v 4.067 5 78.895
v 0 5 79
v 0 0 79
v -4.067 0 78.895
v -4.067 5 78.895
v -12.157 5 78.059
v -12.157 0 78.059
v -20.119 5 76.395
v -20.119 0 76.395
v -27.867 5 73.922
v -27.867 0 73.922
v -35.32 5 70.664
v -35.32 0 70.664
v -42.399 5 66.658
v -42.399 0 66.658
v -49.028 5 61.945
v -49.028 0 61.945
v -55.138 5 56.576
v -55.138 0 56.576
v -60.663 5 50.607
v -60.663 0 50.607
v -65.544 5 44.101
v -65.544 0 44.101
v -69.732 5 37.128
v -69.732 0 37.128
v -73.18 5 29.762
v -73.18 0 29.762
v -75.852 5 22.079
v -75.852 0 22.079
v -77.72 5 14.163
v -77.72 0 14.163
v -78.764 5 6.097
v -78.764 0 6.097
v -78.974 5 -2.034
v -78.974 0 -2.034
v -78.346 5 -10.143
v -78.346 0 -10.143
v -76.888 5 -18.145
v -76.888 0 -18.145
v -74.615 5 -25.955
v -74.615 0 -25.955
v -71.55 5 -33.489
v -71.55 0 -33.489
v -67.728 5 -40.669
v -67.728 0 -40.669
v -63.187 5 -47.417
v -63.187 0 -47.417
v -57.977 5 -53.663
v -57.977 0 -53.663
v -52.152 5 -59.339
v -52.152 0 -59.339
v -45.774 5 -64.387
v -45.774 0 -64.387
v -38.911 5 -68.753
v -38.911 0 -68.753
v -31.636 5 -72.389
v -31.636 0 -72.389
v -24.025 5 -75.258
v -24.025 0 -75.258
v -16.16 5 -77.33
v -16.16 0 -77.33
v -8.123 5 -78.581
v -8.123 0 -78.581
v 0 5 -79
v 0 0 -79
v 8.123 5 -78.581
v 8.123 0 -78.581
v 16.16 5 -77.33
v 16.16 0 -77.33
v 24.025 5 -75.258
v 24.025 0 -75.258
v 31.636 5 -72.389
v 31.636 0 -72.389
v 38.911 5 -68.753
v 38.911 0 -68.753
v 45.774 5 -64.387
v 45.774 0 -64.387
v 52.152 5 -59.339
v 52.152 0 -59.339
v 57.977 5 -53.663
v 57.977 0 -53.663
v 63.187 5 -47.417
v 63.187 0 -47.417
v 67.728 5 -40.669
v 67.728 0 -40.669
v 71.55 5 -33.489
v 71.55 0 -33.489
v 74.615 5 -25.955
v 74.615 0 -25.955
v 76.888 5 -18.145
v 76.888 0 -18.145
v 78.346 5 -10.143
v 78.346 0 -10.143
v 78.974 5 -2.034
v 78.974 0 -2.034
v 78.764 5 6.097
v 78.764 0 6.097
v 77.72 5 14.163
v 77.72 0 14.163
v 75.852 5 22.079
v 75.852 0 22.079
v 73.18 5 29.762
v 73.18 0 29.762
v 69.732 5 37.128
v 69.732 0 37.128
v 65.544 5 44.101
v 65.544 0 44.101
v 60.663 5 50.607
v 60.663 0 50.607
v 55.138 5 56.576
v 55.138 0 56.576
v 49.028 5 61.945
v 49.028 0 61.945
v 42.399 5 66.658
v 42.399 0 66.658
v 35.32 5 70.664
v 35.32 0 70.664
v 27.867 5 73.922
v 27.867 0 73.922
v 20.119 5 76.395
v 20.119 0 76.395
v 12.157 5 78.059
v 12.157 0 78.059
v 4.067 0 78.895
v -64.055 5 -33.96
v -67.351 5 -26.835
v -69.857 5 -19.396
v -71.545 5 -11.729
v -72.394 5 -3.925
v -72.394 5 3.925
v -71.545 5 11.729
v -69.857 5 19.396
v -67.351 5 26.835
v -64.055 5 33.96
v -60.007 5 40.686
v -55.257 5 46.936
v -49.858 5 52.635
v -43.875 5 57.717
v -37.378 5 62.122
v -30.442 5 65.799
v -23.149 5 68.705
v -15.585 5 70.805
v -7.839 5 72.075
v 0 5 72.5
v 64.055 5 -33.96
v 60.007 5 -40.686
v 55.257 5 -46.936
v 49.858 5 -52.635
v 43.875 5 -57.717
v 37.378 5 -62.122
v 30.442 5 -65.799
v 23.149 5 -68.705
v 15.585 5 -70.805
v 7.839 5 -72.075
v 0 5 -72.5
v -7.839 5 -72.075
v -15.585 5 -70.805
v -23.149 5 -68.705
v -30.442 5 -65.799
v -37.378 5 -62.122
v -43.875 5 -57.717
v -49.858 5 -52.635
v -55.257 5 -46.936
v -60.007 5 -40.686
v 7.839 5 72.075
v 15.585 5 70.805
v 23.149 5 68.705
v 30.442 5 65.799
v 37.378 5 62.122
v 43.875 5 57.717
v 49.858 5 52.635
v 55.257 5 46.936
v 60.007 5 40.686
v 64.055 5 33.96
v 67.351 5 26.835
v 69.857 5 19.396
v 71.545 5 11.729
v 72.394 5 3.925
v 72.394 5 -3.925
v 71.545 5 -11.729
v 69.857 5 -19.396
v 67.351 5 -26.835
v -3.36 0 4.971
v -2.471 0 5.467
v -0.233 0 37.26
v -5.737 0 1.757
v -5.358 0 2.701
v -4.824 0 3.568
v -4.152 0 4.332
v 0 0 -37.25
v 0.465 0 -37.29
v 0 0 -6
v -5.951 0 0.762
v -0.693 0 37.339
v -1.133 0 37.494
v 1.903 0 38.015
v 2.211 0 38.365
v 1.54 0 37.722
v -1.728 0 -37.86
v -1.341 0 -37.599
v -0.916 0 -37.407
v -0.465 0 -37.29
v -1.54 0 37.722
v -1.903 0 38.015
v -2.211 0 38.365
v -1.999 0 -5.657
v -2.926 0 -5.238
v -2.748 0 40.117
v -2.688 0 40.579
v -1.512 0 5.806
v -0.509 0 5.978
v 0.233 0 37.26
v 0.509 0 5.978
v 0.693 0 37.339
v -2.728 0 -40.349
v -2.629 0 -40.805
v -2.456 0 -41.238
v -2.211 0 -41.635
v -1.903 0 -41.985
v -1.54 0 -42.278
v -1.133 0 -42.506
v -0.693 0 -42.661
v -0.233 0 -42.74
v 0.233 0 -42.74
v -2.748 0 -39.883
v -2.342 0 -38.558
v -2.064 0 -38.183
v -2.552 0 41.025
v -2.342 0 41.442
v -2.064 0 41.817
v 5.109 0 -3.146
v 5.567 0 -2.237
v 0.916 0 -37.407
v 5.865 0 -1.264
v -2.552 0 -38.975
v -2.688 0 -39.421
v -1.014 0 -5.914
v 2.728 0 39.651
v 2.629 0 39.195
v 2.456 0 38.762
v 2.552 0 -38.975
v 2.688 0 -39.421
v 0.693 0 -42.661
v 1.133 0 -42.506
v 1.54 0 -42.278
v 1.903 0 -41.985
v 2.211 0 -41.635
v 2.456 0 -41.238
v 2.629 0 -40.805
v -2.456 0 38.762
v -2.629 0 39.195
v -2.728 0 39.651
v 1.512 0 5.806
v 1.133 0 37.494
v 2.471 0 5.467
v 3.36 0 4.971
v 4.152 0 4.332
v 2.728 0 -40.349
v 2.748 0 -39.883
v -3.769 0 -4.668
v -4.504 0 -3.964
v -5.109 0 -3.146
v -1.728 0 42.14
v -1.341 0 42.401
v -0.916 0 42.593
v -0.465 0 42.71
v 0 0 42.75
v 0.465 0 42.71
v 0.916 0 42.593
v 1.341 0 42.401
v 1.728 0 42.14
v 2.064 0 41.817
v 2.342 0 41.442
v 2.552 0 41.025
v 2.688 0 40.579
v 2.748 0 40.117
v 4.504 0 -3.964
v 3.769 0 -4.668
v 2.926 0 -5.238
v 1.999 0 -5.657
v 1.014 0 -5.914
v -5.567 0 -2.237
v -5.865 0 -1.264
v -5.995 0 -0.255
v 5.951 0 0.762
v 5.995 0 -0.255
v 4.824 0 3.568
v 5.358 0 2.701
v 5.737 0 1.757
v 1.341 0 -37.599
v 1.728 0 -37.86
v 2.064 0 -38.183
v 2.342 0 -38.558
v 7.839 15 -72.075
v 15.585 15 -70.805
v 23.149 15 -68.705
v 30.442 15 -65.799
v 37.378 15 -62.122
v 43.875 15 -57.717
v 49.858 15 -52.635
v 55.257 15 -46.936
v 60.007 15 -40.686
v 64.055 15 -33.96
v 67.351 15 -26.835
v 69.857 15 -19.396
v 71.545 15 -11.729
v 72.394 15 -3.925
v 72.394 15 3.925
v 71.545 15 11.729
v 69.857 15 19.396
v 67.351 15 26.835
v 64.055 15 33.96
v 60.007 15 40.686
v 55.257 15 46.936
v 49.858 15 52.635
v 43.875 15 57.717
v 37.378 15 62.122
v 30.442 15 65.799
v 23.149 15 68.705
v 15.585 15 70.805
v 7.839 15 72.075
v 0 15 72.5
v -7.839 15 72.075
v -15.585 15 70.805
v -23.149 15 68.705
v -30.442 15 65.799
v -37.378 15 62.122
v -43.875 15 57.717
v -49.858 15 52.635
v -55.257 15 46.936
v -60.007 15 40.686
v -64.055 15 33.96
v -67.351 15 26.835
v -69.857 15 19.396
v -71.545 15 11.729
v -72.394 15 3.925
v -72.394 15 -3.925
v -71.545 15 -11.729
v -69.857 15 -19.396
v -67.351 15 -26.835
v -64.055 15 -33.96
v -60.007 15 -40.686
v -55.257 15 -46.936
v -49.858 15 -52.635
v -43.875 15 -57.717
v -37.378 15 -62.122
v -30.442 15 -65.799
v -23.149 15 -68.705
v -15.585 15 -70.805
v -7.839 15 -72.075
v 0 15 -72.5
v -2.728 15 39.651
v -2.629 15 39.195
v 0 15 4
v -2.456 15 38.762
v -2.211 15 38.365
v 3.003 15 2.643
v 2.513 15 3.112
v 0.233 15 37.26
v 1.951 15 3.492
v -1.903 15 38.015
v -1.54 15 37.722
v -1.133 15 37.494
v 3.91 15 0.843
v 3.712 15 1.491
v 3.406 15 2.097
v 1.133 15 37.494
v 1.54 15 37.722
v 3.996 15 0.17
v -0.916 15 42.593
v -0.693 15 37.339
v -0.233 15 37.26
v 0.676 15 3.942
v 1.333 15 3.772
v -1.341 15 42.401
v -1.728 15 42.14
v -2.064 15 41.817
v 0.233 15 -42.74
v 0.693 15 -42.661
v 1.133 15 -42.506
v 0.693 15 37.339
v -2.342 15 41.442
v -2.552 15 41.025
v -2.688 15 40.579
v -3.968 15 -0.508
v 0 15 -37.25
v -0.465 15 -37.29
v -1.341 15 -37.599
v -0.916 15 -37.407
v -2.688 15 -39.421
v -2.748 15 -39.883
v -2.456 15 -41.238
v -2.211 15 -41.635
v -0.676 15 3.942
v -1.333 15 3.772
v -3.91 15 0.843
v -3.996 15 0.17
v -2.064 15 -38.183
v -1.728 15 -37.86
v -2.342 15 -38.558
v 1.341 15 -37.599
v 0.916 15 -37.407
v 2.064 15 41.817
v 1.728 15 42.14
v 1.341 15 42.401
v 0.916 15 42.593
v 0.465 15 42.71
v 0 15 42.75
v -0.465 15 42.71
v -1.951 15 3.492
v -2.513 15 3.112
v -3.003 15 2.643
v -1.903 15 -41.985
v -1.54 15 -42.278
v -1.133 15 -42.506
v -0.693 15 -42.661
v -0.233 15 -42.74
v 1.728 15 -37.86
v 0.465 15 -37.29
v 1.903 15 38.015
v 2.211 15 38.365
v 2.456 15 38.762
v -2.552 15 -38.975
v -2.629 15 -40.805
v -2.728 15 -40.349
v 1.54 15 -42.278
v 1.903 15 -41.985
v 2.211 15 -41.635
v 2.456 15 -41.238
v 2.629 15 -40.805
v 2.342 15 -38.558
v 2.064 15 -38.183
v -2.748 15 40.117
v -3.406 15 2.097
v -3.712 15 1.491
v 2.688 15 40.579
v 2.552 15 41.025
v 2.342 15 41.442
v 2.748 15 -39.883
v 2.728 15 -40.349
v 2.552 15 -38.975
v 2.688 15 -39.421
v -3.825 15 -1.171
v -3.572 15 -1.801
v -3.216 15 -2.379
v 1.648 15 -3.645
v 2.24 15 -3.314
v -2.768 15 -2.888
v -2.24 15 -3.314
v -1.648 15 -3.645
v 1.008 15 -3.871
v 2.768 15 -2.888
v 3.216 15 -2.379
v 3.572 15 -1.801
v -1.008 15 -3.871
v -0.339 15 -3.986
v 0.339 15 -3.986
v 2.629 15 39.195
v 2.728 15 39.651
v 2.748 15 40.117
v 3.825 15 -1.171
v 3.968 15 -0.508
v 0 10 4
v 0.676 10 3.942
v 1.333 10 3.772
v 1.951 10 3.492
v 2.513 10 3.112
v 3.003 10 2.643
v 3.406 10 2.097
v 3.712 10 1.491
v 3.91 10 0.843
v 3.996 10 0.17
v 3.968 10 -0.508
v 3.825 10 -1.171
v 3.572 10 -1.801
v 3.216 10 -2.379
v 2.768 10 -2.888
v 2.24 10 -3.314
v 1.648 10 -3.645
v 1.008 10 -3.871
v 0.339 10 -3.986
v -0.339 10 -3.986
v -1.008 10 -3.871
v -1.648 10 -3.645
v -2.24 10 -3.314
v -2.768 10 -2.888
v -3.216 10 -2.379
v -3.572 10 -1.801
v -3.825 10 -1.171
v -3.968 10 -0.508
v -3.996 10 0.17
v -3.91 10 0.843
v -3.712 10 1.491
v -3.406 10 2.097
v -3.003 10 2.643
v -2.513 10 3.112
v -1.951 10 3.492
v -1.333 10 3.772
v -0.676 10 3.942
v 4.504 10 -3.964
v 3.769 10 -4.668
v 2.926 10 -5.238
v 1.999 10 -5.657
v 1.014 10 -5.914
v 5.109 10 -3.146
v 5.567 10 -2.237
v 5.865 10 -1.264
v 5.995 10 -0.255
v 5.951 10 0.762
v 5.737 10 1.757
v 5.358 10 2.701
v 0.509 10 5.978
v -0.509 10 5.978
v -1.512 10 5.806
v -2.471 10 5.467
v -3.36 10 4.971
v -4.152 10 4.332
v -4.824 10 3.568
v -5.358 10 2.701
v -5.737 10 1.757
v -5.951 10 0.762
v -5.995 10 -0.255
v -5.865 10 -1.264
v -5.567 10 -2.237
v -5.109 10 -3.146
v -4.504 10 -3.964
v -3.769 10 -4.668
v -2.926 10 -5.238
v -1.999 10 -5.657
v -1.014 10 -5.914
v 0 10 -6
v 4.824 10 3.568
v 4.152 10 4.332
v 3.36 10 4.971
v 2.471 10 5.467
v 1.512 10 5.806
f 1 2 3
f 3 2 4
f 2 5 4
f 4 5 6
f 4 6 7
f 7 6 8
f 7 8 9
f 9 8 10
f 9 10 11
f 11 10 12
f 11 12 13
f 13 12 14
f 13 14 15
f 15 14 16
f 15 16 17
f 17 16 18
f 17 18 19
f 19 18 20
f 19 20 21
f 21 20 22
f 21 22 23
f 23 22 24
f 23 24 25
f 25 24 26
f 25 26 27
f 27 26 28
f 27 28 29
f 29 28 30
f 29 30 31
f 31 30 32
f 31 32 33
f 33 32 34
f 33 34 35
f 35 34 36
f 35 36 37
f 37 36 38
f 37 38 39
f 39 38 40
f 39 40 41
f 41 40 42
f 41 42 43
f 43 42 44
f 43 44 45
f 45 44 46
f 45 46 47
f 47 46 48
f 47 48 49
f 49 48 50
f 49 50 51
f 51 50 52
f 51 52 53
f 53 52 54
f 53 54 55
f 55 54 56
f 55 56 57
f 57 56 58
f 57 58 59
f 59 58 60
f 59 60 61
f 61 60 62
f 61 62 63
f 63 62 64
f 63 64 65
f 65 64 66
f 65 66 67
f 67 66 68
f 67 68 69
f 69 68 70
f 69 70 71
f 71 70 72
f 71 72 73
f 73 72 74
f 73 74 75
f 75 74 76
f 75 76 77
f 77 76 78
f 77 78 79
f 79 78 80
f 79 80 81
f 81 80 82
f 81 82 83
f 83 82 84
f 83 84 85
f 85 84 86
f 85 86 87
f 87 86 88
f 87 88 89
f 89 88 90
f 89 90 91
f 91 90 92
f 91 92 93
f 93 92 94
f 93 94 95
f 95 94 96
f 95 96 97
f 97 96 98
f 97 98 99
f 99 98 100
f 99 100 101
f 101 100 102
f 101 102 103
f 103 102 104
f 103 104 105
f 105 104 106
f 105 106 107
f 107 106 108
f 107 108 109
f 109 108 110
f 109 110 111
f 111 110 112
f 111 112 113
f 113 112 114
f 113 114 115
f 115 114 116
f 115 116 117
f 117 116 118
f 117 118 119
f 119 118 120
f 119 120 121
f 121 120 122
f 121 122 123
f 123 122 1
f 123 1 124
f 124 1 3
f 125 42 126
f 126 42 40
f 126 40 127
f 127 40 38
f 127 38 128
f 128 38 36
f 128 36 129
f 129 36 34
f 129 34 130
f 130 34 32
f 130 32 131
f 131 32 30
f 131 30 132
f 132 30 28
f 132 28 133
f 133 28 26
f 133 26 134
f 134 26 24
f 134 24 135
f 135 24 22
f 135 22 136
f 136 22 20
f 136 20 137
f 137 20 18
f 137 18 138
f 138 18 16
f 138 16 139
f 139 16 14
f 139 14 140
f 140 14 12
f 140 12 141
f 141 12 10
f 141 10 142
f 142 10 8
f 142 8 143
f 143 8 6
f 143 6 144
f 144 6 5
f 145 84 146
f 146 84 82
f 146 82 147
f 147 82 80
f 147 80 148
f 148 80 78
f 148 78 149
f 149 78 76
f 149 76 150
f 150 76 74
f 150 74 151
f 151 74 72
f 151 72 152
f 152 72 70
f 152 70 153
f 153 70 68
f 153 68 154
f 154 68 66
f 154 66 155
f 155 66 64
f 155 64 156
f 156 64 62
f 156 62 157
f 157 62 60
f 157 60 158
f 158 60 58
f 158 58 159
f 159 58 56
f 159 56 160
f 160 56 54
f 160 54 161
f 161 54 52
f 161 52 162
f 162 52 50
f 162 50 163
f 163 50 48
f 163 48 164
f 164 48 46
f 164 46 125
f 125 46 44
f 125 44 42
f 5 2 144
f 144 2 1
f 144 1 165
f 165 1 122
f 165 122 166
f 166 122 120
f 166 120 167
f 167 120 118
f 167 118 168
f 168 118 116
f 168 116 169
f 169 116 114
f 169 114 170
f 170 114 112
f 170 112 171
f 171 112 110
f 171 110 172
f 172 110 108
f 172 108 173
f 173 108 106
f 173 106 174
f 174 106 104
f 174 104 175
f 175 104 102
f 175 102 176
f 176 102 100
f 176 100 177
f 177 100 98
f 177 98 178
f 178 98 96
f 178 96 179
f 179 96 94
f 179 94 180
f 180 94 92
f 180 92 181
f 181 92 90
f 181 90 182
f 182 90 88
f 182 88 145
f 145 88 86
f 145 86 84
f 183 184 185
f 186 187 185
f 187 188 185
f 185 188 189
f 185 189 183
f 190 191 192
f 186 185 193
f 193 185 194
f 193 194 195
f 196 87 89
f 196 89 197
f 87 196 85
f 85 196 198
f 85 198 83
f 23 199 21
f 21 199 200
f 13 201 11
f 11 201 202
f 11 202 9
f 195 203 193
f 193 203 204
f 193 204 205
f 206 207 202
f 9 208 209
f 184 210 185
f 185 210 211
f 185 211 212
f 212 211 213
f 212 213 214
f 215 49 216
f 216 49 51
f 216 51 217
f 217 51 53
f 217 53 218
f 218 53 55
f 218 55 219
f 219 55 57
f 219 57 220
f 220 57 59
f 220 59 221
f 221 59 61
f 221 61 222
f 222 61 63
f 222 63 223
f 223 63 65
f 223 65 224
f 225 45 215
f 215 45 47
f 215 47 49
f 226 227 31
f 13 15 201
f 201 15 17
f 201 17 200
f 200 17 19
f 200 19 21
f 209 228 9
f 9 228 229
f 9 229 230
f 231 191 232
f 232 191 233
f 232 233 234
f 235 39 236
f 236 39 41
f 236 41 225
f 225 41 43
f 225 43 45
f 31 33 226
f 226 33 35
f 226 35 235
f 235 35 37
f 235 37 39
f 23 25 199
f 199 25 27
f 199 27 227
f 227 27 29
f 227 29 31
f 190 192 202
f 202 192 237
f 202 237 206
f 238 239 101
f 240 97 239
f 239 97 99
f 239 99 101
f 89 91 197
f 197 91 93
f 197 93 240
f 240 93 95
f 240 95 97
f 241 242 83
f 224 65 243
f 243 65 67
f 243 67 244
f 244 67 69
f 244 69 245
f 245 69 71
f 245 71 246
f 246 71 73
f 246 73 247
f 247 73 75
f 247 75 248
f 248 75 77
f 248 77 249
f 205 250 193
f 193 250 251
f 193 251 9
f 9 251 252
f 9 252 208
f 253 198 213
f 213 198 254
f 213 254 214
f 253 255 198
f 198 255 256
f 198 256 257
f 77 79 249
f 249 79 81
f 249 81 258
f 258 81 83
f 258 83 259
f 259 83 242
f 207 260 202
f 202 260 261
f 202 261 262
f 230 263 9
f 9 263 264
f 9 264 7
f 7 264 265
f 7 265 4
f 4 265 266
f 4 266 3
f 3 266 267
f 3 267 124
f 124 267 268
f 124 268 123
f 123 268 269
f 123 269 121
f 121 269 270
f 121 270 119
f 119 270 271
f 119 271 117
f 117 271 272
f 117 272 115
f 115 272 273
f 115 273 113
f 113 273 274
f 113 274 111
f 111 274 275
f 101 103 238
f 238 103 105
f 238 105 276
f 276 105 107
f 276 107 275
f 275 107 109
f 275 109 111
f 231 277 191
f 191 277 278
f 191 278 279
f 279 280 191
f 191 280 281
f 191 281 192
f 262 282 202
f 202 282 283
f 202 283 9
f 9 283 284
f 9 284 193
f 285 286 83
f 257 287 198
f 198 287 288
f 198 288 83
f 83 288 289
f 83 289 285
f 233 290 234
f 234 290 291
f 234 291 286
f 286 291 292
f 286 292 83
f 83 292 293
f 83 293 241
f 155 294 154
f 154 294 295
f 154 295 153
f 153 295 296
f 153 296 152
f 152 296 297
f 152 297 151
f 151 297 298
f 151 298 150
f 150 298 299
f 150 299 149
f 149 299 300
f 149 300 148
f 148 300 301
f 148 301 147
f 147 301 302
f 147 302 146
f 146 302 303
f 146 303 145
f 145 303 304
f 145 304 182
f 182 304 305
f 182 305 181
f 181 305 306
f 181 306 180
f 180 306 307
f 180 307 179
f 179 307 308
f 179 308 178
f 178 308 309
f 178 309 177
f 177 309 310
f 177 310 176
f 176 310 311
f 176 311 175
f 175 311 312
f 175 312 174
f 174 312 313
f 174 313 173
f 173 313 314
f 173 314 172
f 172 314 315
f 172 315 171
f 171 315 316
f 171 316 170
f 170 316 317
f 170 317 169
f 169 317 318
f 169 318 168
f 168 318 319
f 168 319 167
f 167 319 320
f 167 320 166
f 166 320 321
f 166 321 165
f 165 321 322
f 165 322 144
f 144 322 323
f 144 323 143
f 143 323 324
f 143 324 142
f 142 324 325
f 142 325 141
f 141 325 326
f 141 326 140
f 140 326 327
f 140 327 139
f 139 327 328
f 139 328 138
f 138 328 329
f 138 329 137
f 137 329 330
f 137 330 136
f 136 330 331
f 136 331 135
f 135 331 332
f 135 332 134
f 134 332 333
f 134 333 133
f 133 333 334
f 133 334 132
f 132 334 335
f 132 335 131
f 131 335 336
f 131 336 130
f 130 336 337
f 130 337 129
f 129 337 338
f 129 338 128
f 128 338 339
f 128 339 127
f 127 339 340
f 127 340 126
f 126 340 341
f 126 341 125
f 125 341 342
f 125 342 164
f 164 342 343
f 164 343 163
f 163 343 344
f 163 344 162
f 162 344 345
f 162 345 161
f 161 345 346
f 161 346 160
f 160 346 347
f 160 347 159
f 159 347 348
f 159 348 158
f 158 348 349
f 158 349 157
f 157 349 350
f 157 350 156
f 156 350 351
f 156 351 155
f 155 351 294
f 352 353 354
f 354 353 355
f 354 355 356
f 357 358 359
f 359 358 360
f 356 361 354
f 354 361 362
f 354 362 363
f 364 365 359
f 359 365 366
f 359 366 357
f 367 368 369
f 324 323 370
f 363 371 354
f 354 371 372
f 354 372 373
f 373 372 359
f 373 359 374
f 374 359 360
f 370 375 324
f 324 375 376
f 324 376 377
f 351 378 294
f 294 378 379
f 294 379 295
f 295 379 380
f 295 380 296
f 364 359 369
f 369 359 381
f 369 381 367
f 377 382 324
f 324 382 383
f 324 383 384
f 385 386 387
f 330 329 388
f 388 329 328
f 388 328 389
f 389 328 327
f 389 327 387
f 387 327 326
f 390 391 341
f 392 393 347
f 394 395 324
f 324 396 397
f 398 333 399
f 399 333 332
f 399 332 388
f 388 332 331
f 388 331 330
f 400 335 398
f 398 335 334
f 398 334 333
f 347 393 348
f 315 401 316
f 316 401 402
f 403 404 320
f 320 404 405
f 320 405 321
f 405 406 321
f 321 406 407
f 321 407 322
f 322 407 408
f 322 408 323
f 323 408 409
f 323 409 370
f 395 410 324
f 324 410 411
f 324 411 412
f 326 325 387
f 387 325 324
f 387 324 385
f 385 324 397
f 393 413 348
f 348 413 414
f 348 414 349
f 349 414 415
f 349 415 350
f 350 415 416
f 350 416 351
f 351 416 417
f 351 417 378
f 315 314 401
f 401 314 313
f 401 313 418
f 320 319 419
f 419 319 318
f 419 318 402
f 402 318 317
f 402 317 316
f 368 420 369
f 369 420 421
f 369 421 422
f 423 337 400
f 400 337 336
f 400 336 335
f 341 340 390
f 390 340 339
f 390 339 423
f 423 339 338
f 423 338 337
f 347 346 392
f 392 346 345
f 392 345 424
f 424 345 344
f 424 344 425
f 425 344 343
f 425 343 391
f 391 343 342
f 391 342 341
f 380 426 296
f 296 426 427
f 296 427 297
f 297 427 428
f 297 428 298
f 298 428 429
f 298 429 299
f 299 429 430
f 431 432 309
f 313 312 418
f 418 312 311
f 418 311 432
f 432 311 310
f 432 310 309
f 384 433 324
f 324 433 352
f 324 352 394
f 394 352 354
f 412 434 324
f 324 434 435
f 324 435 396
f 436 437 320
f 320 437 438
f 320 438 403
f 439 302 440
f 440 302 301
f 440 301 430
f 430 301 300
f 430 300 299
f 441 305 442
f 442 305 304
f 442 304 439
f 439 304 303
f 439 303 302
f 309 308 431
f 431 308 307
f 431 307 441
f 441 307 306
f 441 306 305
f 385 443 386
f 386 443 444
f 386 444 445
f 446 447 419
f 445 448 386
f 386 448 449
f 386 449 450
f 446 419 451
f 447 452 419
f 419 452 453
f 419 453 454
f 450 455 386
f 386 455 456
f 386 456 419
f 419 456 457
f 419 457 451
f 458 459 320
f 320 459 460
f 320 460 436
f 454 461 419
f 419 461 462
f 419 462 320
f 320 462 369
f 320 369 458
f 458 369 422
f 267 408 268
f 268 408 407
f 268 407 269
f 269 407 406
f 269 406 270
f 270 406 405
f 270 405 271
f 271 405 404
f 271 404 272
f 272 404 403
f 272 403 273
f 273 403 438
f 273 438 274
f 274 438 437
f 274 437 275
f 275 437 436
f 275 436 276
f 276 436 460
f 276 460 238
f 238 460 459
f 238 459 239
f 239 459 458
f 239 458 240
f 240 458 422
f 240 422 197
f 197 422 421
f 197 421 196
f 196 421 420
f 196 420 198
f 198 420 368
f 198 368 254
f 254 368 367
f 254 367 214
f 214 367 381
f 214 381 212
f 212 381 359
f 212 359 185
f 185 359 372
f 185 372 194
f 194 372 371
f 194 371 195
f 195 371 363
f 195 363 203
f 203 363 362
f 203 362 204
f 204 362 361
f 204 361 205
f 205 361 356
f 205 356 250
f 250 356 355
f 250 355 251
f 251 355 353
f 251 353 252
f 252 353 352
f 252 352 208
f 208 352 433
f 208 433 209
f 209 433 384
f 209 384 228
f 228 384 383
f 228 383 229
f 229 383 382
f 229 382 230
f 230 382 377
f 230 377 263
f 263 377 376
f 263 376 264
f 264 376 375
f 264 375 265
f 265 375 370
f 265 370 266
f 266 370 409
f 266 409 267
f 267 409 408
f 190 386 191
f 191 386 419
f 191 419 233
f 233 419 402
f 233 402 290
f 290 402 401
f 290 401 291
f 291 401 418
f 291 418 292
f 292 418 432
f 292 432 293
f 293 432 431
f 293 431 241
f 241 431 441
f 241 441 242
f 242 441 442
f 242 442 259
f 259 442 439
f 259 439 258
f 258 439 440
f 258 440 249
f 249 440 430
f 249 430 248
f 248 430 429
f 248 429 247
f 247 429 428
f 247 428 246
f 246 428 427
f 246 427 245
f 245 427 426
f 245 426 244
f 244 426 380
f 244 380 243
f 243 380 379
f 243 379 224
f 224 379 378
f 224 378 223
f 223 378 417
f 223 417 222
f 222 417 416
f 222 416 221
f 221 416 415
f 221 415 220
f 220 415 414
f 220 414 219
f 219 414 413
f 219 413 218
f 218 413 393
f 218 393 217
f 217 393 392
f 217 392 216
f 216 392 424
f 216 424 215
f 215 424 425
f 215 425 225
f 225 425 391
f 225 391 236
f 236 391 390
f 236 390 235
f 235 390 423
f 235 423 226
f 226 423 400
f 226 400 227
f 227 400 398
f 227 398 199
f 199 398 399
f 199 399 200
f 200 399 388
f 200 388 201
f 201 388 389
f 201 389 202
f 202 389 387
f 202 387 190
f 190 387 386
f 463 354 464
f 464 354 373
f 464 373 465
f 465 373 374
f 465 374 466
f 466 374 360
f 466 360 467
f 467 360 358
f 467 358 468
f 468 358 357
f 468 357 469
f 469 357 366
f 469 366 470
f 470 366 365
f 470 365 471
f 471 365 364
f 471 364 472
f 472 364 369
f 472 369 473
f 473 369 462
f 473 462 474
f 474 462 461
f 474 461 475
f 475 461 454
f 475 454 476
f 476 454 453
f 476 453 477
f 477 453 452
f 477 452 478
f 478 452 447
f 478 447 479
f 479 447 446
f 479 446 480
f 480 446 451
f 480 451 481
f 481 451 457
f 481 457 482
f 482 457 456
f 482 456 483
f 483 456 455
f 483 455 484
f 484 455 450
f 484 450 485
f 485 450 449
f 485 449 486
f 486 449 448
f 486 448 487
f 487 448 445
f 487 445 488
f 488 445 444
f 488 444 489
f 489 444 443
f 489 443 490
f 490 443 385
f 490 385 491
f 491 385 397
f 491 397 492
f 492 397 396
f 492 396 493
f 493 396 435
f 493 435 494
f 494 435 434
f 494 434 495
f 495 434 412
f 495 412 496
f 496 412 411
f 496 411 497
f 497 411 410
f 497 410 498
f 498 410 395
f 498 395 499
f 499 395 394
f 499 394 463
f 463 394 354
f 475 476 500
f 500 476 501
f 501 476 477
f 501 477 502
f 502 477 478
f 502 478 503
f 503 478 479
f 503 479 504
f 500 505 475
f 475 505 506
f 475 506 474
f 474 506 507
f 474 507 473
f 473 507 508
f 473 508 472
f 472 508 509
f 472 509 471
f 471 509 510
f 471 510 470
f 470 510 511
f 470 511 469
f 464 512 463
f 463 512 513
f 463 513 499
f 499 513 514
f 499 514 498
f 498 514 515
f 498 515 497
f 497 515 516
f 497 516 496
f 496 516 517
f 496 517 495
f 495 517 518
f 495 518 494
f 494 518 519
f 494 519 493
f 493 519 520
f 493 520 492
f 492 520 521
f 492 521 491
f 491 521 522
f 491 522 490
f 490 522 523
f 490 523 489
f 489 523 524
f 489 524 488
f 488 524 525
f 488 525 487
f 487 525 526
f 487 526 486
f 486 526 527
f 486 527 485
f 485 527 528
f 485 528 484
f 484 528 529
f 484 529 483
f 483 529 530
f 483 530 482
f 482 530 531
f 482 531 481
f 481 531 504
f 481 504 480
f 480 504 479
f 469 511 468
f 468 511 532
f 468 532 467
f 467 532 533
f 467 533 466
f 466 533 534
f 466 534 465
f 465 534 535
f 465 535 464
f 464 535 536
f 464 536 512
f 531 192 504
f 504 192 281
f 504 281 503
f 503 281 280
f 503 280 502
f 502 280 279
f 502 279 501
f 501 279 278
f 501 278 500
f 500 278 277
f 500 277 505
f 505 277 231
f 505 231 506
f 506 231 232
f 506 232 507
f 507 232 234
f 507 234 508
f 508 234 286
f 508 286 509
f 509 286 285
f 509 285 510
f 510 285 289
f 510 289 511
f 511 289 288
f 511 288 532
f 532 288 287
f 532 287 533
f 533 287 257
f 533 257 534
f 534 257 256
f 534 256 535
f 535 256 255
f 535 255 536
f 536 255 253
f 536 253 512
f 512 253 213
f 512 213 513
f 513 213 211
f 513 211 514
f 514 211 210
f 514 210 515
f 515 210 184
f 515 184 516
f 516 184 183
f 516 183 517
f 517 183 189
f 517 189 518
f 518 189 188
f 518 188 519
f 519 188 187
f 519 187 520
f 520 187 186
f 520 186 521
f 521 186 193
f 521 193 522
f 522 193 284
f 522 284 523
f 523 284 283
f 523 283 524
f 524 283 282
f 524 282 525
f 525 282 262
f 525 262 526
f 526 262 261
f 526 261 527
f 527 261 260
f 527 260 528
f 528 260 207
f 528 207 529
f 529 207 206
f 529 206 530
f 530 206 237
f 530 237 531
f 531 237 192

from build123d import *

# Parameters (mm, degrees)
SKETCH1_R           = 79
BOSS_EXTRUDE1_DEPTH = 5
SKETCH2_R           = 72.5
BOSS_EXTRUDE2_DEPTH = 10
SKETCH3_R           = 2.75
CUT_EXTRUDE1_DEPTH  = 113.725329895
SKETCH4_R           = 4
CUT_EXTRUDE2_DEPTH  = 5
SKETCH5_R           = 6
CUT_EXTRUDE3_DEPTH  = 10


with BuildPart() as part:
    # Sketch1 → Boss-Extrude1 (new body)
    with BuildSketch(Plane(origin=(0, 0, 0), x_dir=(1, 0, 0), z_dir=(0, 1, 0))):
        with Locations(Location((0, 0, 0), (0, 0, 270))):
            Circle(SKETCH1_R)
    extrude(amount=BOSS_EXTRUDE1_DEPTH)

    # Sketch2 → Boss-Extrude2 (add)
    with BuildSketch(Plane(origin=(0, 5, 0), x_dir=(1, 0, 0), z_dir=(0, 1, 0))):
        with Locations(Location((0, 0, 0), (0, 0, 270))):
            Circle(SKETCH2_R)
    extrude(amount=BOSS_EXTRUDE2_DEPTH)

    # Sketch3 → Cut-Extrude1 (cut, through all)
    with BuildSketch(Plane(origin=(0, 15, 0), x_dir=(1, 0, 0), z_dir=(0, 1, 0))):
        with Locations(Location((0, 40, 0), (0, 0, 270))):
            Circle(SKETCH3_R)
        with Locations(Location((0, -40, 0), (0, 0, 270))):
            Circle(SKETCH3_R)
    extrude(amount=-CUT_EXTRUDE1_DEPTH, mode=Mode.SUBTRACT)

    # Sketch4 → Cut-Extrude2 (cut)
    with BuildSketch(Plane(origin=(0, 15, 0), x_dir=(1, 0, 0), z_dir=(0, 1, 0))):
        with Locations(Location((0, 0, 0), (0, 0, 270))):
            Circle(SKETCH4_R)
    extrude(amount=-CUT_EXTRUDE2_DEPTH, mode=Mode.SUBTRACT)

    # Sketch5 → Cut-Extrude3 (cut)
    with BuildSketch(Plane.XZ):
        with Locations(Location((0, 0, 0), (0, 0, 270))):
            Circle(SKETCH5_R)
    extrude(amount=-CUT_EXTRUDE3_DEPTH, mode=Mode.SUBTRACT)


solid = part.part
